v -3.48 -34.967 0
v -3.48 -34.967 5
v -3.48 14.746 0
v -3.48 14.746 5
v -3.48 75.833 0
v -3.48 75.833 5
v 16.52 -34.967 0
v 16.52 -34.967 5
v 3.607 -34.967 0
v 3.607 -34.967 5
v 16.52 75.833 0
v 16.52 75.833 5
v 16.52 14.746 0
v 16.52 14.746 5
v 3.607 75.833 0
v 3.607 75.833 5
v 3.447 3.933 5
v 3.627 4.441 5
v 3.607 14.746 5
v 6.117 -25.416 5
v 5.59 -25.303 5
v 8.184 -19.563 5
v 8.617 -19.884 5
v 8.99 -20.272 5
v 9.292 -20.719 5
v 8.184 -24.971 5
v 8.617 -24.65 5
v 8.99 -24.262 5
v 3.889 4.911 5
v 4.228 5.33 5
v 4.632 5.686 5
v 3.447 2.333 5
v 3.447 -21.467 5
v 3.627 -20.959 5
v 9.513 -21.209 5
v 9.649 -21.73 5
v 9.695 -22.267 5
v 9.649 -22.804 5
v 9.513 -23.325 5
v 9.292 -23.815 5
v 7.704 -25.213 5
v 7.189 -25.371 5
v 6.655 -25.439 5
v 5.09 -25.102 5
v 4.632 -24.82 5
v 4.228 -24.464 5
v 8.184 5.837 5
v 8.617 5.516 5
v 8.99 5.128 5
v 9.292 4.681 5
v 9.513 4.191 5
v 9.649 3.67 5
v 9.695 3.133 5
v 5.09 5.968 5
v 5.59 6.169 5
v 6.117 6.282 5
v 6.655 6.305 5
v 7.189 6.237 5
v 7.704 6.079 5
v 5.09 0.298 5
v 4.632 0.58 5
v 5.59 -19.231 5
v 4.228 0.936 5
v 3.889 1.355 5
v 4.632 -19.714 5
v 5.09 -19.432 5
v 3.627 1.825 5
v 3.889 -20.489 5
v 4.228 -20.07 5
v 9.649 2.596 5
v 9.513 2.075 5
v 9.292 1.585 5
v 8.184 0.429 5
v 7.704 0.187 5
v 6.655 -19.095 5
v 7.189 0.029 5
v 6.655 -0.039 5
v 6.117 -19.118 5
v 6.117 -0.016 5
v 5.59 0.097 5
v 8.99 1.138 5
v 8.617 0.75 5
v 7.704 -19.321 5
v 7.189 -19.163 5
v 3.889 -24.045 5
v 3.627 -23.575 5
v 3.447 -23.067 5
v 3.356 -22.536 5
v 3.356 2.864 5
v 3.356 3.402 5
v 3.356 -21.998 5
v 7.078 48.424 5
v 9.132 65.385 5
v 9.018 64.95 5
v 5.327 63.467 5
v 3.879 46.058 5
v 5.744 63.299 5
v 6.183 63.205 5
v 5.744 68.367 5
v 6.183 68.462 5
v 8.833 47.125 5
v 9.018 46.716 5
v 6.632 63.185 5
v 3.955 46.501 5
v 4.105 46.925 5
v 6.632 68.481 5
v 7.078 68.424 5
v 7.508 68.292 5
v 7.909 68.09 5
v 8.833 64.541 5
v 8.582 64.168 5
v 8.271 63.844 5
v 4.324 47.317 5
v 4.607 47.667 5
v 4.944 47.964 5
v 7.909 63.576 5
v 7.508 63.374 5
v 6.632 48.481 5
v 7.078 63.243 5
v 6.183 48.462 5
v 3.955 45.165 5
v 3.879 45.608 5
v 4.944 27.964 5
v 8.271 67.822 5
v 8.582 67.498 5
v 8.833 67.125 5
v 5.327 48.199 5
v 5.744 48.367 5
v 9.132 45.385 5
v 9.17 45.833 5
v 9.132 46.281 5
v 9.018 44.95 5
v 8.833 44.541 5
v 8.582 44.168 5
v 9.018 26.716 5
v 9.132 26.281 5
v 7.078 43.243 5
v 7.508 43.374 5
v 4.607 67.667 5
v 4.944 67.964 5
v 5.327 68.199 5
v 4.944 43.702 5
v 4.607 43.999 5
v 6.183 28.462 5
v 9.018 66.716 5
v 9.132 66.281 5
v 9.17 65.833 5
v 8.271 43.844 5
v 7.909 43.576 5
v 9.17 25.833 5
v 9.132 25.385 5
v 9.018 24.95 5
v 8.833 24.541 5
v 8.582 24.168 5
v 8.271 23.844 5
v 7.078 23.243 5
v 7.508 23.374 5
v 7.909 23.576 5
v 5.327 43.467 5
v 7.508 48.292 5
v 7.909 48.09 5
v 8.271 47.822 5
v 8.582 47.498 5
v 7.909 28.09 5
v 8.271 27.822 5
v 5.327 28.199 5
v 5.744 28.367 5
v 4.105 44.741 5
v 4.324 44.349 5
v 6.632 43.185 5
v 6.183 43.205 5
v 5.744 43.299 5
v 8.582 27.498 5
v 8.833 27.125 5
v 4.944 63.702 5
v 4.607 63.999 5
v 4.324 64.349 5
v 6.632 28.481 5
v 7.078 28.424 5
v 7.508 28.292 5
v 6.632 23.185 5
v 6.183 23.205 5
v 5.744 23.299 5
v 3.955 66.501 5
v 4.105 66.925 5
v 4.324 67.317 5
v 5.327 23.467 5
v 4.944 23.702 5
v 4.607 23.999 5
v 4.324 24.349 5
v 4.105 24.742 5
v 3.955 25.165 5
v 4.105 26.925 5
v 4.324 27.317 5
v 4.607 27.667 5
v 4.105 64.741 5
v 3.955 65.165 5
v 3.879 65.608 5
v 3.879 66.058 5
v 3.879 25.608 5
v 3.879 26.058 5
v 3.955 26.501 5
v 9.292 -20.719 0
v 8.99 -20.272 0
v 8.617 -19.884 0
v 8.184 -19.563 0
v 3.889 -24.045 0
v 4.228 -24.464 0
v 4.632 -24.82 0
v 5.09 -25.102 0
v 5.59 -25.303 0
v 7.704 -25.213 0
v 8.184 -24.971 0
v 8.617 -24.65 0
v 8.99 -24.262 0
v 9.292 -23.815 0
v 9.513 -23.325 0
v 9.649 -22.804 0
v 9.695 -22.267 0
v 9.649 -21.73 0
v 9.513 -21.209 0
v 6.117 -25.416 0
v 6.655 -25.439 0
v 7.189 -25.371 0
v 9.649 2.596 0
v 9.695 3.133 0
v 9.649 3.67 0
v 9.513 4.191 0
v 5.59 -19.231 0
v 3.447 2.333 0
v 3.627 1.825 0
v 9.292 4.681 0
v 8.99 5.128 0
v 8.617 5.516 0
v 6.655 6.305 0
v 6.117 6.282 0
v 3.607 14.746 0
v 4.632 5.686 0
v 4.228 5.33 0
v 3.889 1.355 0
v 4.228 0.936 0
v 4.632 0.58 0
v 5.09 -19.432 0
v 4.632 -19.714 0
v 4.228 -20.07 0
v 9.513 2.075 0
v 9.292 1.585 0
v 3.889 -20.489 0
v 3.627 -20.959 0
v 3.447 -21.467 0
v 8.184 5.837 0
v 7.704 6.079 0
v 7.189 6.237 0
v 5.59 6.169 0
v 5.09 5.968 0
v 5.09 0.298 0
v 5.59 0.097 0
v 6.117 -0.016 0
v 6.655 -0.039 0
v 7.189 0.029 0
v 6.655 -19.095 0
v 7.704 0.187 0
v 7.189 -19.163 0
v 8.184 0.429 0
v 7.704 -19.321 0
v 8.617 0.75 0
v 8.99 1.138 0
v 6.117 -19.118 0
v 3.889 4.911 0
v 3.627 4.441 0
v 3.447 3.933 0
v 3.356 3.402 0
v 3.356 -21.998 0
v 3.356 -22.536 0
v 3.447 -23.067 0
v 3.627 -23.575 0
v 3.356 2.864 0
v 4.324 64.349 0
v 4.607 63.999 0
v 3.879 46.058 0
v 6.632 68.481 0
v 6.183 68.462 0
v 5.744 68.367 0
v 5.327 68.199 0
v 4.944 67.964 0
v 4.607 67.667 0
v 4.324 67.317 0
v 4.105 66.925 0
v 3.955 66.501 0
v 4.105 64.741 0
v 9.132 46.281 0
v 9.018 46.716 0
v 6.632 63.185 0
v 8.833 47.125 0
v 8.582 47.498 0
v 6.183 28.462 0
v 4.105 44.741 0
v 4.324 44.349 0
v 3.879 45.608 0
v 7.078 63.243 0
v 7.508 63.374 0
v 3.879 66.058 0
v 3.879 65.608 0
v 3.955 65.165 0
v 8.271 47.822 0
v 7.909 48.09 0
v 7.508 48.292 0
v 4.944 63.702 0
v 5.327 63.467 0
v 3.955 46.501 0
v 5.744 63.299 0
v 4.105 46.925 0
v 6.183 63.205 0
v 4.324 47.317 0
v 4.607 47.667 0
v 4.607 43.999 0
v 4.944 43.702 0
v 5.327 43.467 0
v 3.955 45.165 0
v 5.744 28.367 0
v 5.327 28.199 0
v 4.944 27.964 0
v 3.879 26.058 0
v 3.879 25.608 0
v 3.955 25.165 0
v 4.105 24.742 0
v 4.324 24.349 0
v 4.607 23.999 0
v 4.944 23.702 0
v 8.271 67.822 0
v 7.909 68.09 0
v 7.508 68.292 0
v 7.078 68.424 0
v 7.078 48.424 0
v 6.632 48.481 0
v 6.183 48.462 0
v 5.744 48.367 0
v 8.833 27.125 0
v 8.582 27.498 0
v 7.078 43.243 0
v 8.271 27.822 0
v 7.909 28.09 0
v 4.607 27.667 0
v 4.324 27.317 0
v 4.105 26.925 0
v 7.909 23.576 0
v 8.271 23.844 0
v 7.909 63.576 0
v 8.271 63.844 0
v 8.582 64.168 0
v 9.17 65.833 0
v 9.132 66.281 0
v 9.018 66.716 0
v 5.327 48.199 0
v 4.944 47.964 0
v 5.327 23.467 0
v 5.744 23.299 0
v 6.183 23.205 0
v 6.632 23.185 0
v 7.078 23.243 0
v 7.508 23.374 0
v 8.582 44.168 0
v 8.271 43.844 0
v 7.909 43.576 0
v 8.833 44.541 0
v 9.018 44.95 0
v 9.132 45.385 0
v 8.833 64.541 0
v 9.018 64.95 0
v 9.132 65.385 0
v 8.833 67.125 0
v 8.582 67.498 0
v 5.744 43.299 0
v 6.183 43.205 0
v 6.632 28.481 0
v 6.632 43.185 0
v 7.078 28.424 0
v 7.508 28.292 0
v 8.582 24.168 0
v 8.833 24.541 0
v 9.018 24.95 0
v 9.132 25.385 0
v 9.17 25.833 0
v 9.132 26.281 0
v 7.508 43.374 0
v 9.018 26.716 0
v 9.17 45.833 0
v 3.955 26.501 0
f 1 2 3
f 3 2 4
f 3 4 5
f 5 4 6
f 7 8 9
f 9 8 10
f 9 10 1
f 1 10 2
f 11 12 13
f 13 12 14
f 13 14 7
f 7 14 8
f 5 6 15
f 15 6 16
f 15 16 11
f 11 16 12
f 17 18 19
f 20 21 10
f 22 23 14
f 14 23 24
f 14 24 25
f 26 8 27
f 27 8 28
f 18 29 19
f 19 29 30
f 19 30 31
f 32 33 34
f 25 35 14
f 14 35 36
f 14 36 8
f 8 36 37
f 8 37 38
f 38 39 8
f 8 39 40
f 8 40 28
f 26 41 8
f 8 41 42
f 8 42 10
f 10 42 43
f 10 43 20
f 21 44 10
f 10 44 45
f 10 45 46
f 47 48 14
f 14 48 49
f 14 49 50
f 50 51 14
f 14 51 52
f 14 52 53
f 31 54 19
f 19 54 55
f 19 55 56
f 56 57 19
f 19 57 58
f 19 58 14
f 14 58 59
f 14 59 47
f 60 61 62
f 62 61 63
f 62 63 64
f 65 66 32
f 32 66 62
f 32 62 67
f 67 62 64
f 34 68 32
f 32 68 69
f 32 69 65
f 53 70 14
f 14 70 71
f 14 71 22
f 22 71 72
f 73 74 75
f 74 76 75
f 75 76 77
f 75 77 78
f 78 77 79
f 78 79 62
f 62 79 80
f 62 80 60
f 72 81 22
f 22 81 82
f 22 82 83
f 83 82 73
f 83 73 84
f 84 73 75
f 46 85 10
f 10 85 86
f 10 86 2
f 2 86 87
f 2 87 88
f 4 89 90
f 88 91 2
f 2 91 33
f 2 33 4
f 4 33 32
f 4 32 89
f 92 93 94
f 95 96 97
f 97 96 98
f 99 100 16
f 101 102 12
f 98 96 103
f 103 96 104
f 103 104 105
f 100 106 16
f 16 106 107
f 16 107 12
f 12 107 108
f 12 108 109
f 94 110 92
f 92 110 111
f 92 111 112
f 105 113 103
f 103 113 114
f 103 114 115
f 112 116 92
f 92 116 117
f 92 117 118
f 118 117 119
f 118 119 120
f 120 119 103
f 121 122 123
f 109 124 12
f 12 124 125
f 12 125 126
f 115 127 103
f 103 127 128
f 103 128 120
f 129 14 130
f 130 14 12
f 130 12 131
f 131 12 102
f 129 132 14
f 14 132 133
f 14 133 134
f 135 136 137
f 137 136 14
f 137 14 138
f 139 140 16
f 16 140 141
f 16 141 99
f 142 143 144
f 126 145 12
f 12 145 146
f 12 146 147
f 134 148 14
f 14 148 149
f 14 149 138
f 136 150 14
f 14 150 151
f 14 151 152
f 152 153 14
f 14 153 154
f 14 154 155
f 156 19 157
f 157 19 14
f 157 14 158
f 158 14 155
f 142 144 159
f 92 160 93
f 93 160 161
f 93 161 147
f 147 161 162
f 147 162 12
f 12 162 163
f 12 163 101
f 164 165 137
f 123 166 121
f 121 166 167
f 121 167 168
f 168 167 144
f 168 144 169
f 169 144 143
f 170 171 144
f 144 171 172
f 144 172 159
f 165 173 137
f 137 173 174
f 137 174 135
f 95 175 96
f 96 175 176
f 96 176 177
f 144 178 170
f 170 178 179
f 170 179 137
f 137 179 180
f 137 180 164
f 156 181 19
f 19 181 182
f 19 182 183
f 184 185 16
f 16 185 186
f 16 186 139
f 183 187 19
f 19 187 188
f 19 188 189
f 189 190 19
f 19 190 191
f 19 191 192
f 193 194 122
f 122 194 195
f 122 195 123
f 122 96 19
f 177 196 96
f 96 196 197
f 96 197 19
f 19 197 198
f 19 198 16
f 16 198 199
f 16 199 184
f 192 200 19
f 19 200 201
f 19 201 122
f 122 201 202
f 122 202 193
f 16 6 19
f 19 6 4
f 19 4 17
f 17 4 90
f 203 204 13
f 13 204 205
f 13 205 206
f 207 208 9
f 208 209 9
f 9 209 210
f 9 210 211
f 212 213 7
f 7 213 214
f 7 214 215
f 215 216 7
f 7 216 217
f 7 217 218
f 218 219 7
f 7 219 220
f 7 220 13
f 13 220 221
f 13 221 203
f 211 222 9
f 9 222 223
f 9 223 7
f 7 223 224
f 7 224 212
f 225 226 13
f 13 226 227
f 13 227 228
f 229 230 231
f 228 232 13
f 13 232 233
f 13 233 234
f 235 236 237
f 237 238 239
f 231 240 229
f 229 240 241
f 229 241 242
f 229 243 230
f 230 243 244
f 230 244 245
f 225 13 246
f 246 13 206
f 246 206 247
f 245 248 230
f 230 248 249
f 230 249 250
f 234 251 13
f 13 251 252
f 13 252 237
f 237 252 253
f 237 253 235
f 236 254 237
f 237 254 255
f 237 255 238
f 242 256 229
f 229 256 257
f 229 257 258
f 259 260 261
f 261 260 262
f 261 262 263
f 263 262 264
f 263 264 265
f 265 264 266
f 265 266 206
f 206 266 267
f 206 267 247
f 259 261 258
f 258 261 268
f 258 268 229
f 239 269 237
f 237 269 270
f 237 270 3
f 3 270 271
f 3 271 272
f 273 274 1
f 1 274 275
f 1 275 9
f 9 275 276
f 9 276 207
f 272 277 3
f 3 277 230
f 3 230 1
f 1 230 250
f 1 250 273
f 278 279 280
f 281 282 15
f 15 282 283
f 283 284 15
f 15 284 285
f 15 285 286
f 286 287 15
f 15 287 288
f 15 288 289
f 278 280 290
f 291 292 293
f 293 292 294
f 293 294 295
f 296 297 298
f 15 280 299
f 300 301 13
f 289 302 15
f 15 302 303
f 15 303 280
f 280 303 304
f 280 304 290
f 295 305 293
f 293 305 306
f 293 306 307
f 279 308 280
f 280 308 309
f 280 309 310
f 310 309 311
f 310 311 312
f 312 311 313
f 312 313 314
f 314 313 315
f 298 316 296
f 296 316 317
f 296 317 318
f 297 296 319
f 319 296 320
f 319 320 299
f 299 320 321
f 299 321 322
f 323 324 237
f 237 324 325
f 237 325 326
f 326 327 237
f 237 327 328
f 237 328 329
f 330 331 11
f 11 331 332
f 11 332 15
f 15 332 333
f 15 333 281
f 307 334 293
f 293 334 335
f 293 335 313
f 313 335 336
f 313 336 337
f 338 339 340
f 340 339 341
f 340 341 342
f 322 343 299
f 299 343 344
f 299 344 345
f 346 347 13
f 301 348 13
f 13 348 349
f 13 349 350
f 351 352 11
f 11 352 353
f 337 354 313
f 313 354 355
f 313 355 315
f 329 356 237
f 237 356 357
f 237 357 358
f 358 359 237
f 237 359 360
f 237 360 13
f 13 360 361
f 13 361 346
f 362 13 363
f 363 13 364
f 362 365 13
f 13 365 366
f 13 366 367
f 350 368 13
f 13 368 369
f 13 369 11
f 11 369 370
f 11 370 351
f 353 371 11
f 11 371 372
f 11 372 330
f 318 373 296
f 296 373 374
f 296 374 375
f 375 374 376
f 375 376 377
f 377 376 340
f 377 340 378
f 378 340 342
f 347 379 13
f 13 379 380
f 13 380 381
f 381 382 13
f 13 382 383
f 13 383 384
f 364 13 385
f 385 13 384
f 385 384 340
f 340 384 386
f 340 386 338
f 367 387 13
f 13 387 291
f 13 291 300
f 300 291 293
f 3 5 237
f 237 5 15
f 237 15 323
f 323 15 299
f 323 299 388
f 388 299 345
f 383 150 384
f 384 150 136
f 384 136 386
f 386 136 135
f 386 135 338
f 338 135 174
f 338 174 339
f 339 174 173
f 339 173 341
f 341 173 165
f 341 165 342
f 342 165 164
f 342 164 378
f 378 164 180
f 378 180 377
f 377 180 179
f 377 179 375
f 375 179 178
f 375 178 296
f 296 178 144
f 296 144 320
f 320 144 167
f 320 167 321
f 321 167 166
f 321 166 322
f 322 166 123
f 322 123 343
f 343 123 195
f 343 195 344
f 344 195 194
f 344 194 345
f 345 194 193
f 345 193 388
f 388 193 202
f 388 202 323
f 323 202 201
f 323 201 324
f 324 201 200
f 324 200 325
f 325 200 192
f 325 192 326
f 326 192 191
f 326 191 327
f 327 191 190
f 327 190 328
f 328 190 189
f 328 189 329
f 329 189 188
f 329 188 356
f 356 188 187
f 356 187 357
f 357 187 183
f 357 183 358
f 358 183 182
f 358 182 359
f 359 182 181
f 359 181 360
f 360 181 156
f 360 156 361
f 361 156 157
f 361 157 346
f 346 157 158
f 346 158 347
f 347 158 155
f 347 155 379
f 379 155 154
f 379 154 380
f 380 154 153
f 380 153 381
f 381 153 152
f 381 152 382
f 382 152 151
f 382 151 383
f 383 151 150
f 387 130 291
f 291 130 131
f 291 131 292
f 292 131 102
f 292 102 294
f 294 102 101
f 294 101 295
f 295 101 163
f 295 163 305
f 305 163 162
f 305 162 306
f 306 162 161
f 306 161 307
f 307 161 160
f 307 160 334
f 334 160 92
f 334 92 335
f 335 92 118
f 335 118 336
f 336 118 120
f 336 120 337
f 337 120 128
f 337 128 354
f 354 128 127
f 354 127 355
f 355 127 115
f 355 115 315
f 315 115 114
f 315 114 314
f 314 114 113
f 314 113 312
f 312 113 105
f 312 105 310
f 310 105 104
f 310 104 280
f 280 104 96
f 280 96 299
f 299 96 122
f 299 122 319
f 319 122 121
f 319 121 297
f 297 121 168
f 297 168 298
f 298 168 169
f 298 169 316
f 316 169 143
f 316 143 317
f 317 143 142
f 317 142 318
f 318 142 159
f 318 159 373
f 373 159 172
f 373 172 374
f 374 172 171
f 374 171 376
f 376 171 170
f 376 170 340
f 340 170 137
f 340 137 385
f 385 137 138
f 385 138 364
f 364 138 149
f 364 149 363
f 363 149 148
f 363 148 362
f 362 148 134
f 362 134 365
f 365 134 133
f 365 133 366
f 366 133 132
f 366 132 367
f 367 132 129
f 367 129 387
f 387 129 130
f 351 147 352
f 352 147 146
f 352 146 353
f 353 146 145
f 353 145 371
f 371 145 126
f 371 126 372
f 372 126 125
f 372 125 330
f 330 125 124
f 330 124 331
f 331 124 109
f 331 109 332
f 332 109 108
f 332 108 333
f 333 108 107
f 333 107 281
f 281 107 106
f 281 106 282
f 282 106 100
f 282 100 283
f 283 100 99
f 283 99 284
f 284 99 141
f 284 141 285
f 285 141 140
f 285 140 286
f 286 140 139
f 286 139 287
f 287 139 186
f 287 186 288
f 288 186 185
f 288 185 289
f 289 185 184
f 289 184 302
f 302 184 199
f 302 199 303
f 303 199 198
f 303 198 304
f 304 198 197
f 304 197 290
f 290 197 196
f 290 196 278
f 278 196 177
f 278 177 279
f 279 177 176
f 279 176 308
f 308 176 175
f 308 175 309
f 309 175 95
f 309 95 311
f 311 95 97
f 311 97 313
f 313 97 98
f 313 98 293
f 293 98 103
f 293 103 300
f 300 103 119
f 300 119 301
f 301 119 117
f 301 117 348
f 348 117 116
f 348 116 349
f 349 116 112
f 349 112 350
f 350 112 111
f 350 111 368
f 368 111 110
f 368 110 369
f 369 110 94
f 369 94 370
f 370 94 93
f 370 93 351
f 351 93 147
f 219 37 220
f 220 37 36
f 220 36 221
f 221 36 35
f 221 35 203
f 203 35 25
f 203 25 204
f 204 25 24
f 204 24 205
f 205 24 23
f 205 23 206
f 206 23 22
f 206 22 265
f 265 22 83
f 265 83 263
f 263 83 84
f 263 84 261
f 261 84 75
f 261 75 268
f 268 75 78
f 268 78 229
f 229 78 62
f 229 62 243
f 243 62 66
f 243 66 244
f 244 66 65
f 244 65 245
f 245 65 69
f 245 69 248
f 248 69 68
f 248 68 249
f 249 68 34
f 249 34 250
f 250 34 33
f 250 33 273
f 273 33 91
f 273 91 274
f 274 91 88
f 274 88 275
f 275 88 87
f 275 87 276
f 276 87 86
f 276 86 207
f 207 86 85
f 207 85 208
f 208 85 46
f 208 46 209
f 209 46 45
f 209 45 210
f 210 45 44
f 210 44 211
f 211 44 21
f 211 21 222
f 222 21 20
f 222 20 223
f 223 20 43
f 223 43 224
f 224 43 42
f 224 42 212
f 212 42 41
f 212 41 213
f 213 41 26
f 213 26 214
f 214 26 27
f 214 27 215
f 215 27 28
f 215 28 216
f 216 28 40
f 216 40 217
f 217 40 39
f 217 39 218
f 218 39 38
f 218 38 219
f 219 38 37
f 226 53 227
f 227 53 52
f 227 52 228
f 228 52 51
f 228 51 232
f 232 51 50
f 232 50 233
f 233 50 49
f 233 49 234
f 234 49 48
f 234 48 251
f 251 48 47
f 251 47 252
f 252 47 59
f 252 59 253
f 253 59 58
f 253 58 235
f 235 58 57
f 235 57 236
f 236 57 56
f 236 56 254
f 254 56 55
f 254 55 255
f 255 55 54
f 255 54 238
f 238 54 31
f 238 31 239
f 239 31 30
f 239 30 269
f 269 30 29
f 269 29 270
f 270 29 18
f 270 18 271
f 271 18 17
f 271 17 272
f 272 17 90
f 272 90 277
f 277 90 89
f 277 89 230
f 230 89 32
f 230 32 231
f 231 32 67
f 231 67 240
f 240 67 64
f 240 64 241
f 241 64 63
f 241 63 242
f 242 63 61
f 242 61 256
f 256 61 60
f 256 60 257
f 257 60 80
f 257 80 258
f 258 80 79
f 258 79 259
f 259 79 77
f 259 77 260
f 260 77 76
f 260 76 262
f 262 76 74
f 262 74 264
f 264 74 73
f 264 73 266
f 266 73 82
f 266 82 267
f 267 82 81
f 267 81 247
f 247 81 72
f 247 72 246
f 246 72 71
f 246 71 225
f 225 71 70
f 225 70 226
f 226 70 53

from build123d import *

# Parameters (mm, degrees)
SKETCH1_W                   = 20
SKETCH1_H                   = 110.8
BOSS_EXTRUDE1_DEPTH         = 5
M5_CLEARANCE_HOLE1_D        = 5.3
F_1_4_0_25_DIAMETER_HOLE1_D = 6.35


with BuildPart() as part:
    # Sketch1 → Boss-Extrude1 (new body)
    with BuildSketch(Plane.XY):
        with Locations((6.519823789, 20.433039648)):
            Rectangle(SKETCH1_W, SKETCH1_H)
    extrude(amount=BOSS_EXTRUDE1_DEPTH)

    # M5 Clearance Hole1 (through all)
    with Locations(Plane.XY.offset(5)):
        with Locations((6.519823789, 65.833039648), (6.519823789, 45.833039648), (6.519823789, 25.833039648)):
            Hole(M5_CLEARANCE_HOLE1_D / 2)

    # 1/4 (0.25) Diameter Hole1 (through all)
    with Locations(Plane.XY.offset(5)):
        with Locations((6.519823789, 3.133039648), (6.519823789, -22.266960352)):
            Hole(F_1_4_0_25_DIAMETER_HOLE1_D / 2)


solid = part.part
